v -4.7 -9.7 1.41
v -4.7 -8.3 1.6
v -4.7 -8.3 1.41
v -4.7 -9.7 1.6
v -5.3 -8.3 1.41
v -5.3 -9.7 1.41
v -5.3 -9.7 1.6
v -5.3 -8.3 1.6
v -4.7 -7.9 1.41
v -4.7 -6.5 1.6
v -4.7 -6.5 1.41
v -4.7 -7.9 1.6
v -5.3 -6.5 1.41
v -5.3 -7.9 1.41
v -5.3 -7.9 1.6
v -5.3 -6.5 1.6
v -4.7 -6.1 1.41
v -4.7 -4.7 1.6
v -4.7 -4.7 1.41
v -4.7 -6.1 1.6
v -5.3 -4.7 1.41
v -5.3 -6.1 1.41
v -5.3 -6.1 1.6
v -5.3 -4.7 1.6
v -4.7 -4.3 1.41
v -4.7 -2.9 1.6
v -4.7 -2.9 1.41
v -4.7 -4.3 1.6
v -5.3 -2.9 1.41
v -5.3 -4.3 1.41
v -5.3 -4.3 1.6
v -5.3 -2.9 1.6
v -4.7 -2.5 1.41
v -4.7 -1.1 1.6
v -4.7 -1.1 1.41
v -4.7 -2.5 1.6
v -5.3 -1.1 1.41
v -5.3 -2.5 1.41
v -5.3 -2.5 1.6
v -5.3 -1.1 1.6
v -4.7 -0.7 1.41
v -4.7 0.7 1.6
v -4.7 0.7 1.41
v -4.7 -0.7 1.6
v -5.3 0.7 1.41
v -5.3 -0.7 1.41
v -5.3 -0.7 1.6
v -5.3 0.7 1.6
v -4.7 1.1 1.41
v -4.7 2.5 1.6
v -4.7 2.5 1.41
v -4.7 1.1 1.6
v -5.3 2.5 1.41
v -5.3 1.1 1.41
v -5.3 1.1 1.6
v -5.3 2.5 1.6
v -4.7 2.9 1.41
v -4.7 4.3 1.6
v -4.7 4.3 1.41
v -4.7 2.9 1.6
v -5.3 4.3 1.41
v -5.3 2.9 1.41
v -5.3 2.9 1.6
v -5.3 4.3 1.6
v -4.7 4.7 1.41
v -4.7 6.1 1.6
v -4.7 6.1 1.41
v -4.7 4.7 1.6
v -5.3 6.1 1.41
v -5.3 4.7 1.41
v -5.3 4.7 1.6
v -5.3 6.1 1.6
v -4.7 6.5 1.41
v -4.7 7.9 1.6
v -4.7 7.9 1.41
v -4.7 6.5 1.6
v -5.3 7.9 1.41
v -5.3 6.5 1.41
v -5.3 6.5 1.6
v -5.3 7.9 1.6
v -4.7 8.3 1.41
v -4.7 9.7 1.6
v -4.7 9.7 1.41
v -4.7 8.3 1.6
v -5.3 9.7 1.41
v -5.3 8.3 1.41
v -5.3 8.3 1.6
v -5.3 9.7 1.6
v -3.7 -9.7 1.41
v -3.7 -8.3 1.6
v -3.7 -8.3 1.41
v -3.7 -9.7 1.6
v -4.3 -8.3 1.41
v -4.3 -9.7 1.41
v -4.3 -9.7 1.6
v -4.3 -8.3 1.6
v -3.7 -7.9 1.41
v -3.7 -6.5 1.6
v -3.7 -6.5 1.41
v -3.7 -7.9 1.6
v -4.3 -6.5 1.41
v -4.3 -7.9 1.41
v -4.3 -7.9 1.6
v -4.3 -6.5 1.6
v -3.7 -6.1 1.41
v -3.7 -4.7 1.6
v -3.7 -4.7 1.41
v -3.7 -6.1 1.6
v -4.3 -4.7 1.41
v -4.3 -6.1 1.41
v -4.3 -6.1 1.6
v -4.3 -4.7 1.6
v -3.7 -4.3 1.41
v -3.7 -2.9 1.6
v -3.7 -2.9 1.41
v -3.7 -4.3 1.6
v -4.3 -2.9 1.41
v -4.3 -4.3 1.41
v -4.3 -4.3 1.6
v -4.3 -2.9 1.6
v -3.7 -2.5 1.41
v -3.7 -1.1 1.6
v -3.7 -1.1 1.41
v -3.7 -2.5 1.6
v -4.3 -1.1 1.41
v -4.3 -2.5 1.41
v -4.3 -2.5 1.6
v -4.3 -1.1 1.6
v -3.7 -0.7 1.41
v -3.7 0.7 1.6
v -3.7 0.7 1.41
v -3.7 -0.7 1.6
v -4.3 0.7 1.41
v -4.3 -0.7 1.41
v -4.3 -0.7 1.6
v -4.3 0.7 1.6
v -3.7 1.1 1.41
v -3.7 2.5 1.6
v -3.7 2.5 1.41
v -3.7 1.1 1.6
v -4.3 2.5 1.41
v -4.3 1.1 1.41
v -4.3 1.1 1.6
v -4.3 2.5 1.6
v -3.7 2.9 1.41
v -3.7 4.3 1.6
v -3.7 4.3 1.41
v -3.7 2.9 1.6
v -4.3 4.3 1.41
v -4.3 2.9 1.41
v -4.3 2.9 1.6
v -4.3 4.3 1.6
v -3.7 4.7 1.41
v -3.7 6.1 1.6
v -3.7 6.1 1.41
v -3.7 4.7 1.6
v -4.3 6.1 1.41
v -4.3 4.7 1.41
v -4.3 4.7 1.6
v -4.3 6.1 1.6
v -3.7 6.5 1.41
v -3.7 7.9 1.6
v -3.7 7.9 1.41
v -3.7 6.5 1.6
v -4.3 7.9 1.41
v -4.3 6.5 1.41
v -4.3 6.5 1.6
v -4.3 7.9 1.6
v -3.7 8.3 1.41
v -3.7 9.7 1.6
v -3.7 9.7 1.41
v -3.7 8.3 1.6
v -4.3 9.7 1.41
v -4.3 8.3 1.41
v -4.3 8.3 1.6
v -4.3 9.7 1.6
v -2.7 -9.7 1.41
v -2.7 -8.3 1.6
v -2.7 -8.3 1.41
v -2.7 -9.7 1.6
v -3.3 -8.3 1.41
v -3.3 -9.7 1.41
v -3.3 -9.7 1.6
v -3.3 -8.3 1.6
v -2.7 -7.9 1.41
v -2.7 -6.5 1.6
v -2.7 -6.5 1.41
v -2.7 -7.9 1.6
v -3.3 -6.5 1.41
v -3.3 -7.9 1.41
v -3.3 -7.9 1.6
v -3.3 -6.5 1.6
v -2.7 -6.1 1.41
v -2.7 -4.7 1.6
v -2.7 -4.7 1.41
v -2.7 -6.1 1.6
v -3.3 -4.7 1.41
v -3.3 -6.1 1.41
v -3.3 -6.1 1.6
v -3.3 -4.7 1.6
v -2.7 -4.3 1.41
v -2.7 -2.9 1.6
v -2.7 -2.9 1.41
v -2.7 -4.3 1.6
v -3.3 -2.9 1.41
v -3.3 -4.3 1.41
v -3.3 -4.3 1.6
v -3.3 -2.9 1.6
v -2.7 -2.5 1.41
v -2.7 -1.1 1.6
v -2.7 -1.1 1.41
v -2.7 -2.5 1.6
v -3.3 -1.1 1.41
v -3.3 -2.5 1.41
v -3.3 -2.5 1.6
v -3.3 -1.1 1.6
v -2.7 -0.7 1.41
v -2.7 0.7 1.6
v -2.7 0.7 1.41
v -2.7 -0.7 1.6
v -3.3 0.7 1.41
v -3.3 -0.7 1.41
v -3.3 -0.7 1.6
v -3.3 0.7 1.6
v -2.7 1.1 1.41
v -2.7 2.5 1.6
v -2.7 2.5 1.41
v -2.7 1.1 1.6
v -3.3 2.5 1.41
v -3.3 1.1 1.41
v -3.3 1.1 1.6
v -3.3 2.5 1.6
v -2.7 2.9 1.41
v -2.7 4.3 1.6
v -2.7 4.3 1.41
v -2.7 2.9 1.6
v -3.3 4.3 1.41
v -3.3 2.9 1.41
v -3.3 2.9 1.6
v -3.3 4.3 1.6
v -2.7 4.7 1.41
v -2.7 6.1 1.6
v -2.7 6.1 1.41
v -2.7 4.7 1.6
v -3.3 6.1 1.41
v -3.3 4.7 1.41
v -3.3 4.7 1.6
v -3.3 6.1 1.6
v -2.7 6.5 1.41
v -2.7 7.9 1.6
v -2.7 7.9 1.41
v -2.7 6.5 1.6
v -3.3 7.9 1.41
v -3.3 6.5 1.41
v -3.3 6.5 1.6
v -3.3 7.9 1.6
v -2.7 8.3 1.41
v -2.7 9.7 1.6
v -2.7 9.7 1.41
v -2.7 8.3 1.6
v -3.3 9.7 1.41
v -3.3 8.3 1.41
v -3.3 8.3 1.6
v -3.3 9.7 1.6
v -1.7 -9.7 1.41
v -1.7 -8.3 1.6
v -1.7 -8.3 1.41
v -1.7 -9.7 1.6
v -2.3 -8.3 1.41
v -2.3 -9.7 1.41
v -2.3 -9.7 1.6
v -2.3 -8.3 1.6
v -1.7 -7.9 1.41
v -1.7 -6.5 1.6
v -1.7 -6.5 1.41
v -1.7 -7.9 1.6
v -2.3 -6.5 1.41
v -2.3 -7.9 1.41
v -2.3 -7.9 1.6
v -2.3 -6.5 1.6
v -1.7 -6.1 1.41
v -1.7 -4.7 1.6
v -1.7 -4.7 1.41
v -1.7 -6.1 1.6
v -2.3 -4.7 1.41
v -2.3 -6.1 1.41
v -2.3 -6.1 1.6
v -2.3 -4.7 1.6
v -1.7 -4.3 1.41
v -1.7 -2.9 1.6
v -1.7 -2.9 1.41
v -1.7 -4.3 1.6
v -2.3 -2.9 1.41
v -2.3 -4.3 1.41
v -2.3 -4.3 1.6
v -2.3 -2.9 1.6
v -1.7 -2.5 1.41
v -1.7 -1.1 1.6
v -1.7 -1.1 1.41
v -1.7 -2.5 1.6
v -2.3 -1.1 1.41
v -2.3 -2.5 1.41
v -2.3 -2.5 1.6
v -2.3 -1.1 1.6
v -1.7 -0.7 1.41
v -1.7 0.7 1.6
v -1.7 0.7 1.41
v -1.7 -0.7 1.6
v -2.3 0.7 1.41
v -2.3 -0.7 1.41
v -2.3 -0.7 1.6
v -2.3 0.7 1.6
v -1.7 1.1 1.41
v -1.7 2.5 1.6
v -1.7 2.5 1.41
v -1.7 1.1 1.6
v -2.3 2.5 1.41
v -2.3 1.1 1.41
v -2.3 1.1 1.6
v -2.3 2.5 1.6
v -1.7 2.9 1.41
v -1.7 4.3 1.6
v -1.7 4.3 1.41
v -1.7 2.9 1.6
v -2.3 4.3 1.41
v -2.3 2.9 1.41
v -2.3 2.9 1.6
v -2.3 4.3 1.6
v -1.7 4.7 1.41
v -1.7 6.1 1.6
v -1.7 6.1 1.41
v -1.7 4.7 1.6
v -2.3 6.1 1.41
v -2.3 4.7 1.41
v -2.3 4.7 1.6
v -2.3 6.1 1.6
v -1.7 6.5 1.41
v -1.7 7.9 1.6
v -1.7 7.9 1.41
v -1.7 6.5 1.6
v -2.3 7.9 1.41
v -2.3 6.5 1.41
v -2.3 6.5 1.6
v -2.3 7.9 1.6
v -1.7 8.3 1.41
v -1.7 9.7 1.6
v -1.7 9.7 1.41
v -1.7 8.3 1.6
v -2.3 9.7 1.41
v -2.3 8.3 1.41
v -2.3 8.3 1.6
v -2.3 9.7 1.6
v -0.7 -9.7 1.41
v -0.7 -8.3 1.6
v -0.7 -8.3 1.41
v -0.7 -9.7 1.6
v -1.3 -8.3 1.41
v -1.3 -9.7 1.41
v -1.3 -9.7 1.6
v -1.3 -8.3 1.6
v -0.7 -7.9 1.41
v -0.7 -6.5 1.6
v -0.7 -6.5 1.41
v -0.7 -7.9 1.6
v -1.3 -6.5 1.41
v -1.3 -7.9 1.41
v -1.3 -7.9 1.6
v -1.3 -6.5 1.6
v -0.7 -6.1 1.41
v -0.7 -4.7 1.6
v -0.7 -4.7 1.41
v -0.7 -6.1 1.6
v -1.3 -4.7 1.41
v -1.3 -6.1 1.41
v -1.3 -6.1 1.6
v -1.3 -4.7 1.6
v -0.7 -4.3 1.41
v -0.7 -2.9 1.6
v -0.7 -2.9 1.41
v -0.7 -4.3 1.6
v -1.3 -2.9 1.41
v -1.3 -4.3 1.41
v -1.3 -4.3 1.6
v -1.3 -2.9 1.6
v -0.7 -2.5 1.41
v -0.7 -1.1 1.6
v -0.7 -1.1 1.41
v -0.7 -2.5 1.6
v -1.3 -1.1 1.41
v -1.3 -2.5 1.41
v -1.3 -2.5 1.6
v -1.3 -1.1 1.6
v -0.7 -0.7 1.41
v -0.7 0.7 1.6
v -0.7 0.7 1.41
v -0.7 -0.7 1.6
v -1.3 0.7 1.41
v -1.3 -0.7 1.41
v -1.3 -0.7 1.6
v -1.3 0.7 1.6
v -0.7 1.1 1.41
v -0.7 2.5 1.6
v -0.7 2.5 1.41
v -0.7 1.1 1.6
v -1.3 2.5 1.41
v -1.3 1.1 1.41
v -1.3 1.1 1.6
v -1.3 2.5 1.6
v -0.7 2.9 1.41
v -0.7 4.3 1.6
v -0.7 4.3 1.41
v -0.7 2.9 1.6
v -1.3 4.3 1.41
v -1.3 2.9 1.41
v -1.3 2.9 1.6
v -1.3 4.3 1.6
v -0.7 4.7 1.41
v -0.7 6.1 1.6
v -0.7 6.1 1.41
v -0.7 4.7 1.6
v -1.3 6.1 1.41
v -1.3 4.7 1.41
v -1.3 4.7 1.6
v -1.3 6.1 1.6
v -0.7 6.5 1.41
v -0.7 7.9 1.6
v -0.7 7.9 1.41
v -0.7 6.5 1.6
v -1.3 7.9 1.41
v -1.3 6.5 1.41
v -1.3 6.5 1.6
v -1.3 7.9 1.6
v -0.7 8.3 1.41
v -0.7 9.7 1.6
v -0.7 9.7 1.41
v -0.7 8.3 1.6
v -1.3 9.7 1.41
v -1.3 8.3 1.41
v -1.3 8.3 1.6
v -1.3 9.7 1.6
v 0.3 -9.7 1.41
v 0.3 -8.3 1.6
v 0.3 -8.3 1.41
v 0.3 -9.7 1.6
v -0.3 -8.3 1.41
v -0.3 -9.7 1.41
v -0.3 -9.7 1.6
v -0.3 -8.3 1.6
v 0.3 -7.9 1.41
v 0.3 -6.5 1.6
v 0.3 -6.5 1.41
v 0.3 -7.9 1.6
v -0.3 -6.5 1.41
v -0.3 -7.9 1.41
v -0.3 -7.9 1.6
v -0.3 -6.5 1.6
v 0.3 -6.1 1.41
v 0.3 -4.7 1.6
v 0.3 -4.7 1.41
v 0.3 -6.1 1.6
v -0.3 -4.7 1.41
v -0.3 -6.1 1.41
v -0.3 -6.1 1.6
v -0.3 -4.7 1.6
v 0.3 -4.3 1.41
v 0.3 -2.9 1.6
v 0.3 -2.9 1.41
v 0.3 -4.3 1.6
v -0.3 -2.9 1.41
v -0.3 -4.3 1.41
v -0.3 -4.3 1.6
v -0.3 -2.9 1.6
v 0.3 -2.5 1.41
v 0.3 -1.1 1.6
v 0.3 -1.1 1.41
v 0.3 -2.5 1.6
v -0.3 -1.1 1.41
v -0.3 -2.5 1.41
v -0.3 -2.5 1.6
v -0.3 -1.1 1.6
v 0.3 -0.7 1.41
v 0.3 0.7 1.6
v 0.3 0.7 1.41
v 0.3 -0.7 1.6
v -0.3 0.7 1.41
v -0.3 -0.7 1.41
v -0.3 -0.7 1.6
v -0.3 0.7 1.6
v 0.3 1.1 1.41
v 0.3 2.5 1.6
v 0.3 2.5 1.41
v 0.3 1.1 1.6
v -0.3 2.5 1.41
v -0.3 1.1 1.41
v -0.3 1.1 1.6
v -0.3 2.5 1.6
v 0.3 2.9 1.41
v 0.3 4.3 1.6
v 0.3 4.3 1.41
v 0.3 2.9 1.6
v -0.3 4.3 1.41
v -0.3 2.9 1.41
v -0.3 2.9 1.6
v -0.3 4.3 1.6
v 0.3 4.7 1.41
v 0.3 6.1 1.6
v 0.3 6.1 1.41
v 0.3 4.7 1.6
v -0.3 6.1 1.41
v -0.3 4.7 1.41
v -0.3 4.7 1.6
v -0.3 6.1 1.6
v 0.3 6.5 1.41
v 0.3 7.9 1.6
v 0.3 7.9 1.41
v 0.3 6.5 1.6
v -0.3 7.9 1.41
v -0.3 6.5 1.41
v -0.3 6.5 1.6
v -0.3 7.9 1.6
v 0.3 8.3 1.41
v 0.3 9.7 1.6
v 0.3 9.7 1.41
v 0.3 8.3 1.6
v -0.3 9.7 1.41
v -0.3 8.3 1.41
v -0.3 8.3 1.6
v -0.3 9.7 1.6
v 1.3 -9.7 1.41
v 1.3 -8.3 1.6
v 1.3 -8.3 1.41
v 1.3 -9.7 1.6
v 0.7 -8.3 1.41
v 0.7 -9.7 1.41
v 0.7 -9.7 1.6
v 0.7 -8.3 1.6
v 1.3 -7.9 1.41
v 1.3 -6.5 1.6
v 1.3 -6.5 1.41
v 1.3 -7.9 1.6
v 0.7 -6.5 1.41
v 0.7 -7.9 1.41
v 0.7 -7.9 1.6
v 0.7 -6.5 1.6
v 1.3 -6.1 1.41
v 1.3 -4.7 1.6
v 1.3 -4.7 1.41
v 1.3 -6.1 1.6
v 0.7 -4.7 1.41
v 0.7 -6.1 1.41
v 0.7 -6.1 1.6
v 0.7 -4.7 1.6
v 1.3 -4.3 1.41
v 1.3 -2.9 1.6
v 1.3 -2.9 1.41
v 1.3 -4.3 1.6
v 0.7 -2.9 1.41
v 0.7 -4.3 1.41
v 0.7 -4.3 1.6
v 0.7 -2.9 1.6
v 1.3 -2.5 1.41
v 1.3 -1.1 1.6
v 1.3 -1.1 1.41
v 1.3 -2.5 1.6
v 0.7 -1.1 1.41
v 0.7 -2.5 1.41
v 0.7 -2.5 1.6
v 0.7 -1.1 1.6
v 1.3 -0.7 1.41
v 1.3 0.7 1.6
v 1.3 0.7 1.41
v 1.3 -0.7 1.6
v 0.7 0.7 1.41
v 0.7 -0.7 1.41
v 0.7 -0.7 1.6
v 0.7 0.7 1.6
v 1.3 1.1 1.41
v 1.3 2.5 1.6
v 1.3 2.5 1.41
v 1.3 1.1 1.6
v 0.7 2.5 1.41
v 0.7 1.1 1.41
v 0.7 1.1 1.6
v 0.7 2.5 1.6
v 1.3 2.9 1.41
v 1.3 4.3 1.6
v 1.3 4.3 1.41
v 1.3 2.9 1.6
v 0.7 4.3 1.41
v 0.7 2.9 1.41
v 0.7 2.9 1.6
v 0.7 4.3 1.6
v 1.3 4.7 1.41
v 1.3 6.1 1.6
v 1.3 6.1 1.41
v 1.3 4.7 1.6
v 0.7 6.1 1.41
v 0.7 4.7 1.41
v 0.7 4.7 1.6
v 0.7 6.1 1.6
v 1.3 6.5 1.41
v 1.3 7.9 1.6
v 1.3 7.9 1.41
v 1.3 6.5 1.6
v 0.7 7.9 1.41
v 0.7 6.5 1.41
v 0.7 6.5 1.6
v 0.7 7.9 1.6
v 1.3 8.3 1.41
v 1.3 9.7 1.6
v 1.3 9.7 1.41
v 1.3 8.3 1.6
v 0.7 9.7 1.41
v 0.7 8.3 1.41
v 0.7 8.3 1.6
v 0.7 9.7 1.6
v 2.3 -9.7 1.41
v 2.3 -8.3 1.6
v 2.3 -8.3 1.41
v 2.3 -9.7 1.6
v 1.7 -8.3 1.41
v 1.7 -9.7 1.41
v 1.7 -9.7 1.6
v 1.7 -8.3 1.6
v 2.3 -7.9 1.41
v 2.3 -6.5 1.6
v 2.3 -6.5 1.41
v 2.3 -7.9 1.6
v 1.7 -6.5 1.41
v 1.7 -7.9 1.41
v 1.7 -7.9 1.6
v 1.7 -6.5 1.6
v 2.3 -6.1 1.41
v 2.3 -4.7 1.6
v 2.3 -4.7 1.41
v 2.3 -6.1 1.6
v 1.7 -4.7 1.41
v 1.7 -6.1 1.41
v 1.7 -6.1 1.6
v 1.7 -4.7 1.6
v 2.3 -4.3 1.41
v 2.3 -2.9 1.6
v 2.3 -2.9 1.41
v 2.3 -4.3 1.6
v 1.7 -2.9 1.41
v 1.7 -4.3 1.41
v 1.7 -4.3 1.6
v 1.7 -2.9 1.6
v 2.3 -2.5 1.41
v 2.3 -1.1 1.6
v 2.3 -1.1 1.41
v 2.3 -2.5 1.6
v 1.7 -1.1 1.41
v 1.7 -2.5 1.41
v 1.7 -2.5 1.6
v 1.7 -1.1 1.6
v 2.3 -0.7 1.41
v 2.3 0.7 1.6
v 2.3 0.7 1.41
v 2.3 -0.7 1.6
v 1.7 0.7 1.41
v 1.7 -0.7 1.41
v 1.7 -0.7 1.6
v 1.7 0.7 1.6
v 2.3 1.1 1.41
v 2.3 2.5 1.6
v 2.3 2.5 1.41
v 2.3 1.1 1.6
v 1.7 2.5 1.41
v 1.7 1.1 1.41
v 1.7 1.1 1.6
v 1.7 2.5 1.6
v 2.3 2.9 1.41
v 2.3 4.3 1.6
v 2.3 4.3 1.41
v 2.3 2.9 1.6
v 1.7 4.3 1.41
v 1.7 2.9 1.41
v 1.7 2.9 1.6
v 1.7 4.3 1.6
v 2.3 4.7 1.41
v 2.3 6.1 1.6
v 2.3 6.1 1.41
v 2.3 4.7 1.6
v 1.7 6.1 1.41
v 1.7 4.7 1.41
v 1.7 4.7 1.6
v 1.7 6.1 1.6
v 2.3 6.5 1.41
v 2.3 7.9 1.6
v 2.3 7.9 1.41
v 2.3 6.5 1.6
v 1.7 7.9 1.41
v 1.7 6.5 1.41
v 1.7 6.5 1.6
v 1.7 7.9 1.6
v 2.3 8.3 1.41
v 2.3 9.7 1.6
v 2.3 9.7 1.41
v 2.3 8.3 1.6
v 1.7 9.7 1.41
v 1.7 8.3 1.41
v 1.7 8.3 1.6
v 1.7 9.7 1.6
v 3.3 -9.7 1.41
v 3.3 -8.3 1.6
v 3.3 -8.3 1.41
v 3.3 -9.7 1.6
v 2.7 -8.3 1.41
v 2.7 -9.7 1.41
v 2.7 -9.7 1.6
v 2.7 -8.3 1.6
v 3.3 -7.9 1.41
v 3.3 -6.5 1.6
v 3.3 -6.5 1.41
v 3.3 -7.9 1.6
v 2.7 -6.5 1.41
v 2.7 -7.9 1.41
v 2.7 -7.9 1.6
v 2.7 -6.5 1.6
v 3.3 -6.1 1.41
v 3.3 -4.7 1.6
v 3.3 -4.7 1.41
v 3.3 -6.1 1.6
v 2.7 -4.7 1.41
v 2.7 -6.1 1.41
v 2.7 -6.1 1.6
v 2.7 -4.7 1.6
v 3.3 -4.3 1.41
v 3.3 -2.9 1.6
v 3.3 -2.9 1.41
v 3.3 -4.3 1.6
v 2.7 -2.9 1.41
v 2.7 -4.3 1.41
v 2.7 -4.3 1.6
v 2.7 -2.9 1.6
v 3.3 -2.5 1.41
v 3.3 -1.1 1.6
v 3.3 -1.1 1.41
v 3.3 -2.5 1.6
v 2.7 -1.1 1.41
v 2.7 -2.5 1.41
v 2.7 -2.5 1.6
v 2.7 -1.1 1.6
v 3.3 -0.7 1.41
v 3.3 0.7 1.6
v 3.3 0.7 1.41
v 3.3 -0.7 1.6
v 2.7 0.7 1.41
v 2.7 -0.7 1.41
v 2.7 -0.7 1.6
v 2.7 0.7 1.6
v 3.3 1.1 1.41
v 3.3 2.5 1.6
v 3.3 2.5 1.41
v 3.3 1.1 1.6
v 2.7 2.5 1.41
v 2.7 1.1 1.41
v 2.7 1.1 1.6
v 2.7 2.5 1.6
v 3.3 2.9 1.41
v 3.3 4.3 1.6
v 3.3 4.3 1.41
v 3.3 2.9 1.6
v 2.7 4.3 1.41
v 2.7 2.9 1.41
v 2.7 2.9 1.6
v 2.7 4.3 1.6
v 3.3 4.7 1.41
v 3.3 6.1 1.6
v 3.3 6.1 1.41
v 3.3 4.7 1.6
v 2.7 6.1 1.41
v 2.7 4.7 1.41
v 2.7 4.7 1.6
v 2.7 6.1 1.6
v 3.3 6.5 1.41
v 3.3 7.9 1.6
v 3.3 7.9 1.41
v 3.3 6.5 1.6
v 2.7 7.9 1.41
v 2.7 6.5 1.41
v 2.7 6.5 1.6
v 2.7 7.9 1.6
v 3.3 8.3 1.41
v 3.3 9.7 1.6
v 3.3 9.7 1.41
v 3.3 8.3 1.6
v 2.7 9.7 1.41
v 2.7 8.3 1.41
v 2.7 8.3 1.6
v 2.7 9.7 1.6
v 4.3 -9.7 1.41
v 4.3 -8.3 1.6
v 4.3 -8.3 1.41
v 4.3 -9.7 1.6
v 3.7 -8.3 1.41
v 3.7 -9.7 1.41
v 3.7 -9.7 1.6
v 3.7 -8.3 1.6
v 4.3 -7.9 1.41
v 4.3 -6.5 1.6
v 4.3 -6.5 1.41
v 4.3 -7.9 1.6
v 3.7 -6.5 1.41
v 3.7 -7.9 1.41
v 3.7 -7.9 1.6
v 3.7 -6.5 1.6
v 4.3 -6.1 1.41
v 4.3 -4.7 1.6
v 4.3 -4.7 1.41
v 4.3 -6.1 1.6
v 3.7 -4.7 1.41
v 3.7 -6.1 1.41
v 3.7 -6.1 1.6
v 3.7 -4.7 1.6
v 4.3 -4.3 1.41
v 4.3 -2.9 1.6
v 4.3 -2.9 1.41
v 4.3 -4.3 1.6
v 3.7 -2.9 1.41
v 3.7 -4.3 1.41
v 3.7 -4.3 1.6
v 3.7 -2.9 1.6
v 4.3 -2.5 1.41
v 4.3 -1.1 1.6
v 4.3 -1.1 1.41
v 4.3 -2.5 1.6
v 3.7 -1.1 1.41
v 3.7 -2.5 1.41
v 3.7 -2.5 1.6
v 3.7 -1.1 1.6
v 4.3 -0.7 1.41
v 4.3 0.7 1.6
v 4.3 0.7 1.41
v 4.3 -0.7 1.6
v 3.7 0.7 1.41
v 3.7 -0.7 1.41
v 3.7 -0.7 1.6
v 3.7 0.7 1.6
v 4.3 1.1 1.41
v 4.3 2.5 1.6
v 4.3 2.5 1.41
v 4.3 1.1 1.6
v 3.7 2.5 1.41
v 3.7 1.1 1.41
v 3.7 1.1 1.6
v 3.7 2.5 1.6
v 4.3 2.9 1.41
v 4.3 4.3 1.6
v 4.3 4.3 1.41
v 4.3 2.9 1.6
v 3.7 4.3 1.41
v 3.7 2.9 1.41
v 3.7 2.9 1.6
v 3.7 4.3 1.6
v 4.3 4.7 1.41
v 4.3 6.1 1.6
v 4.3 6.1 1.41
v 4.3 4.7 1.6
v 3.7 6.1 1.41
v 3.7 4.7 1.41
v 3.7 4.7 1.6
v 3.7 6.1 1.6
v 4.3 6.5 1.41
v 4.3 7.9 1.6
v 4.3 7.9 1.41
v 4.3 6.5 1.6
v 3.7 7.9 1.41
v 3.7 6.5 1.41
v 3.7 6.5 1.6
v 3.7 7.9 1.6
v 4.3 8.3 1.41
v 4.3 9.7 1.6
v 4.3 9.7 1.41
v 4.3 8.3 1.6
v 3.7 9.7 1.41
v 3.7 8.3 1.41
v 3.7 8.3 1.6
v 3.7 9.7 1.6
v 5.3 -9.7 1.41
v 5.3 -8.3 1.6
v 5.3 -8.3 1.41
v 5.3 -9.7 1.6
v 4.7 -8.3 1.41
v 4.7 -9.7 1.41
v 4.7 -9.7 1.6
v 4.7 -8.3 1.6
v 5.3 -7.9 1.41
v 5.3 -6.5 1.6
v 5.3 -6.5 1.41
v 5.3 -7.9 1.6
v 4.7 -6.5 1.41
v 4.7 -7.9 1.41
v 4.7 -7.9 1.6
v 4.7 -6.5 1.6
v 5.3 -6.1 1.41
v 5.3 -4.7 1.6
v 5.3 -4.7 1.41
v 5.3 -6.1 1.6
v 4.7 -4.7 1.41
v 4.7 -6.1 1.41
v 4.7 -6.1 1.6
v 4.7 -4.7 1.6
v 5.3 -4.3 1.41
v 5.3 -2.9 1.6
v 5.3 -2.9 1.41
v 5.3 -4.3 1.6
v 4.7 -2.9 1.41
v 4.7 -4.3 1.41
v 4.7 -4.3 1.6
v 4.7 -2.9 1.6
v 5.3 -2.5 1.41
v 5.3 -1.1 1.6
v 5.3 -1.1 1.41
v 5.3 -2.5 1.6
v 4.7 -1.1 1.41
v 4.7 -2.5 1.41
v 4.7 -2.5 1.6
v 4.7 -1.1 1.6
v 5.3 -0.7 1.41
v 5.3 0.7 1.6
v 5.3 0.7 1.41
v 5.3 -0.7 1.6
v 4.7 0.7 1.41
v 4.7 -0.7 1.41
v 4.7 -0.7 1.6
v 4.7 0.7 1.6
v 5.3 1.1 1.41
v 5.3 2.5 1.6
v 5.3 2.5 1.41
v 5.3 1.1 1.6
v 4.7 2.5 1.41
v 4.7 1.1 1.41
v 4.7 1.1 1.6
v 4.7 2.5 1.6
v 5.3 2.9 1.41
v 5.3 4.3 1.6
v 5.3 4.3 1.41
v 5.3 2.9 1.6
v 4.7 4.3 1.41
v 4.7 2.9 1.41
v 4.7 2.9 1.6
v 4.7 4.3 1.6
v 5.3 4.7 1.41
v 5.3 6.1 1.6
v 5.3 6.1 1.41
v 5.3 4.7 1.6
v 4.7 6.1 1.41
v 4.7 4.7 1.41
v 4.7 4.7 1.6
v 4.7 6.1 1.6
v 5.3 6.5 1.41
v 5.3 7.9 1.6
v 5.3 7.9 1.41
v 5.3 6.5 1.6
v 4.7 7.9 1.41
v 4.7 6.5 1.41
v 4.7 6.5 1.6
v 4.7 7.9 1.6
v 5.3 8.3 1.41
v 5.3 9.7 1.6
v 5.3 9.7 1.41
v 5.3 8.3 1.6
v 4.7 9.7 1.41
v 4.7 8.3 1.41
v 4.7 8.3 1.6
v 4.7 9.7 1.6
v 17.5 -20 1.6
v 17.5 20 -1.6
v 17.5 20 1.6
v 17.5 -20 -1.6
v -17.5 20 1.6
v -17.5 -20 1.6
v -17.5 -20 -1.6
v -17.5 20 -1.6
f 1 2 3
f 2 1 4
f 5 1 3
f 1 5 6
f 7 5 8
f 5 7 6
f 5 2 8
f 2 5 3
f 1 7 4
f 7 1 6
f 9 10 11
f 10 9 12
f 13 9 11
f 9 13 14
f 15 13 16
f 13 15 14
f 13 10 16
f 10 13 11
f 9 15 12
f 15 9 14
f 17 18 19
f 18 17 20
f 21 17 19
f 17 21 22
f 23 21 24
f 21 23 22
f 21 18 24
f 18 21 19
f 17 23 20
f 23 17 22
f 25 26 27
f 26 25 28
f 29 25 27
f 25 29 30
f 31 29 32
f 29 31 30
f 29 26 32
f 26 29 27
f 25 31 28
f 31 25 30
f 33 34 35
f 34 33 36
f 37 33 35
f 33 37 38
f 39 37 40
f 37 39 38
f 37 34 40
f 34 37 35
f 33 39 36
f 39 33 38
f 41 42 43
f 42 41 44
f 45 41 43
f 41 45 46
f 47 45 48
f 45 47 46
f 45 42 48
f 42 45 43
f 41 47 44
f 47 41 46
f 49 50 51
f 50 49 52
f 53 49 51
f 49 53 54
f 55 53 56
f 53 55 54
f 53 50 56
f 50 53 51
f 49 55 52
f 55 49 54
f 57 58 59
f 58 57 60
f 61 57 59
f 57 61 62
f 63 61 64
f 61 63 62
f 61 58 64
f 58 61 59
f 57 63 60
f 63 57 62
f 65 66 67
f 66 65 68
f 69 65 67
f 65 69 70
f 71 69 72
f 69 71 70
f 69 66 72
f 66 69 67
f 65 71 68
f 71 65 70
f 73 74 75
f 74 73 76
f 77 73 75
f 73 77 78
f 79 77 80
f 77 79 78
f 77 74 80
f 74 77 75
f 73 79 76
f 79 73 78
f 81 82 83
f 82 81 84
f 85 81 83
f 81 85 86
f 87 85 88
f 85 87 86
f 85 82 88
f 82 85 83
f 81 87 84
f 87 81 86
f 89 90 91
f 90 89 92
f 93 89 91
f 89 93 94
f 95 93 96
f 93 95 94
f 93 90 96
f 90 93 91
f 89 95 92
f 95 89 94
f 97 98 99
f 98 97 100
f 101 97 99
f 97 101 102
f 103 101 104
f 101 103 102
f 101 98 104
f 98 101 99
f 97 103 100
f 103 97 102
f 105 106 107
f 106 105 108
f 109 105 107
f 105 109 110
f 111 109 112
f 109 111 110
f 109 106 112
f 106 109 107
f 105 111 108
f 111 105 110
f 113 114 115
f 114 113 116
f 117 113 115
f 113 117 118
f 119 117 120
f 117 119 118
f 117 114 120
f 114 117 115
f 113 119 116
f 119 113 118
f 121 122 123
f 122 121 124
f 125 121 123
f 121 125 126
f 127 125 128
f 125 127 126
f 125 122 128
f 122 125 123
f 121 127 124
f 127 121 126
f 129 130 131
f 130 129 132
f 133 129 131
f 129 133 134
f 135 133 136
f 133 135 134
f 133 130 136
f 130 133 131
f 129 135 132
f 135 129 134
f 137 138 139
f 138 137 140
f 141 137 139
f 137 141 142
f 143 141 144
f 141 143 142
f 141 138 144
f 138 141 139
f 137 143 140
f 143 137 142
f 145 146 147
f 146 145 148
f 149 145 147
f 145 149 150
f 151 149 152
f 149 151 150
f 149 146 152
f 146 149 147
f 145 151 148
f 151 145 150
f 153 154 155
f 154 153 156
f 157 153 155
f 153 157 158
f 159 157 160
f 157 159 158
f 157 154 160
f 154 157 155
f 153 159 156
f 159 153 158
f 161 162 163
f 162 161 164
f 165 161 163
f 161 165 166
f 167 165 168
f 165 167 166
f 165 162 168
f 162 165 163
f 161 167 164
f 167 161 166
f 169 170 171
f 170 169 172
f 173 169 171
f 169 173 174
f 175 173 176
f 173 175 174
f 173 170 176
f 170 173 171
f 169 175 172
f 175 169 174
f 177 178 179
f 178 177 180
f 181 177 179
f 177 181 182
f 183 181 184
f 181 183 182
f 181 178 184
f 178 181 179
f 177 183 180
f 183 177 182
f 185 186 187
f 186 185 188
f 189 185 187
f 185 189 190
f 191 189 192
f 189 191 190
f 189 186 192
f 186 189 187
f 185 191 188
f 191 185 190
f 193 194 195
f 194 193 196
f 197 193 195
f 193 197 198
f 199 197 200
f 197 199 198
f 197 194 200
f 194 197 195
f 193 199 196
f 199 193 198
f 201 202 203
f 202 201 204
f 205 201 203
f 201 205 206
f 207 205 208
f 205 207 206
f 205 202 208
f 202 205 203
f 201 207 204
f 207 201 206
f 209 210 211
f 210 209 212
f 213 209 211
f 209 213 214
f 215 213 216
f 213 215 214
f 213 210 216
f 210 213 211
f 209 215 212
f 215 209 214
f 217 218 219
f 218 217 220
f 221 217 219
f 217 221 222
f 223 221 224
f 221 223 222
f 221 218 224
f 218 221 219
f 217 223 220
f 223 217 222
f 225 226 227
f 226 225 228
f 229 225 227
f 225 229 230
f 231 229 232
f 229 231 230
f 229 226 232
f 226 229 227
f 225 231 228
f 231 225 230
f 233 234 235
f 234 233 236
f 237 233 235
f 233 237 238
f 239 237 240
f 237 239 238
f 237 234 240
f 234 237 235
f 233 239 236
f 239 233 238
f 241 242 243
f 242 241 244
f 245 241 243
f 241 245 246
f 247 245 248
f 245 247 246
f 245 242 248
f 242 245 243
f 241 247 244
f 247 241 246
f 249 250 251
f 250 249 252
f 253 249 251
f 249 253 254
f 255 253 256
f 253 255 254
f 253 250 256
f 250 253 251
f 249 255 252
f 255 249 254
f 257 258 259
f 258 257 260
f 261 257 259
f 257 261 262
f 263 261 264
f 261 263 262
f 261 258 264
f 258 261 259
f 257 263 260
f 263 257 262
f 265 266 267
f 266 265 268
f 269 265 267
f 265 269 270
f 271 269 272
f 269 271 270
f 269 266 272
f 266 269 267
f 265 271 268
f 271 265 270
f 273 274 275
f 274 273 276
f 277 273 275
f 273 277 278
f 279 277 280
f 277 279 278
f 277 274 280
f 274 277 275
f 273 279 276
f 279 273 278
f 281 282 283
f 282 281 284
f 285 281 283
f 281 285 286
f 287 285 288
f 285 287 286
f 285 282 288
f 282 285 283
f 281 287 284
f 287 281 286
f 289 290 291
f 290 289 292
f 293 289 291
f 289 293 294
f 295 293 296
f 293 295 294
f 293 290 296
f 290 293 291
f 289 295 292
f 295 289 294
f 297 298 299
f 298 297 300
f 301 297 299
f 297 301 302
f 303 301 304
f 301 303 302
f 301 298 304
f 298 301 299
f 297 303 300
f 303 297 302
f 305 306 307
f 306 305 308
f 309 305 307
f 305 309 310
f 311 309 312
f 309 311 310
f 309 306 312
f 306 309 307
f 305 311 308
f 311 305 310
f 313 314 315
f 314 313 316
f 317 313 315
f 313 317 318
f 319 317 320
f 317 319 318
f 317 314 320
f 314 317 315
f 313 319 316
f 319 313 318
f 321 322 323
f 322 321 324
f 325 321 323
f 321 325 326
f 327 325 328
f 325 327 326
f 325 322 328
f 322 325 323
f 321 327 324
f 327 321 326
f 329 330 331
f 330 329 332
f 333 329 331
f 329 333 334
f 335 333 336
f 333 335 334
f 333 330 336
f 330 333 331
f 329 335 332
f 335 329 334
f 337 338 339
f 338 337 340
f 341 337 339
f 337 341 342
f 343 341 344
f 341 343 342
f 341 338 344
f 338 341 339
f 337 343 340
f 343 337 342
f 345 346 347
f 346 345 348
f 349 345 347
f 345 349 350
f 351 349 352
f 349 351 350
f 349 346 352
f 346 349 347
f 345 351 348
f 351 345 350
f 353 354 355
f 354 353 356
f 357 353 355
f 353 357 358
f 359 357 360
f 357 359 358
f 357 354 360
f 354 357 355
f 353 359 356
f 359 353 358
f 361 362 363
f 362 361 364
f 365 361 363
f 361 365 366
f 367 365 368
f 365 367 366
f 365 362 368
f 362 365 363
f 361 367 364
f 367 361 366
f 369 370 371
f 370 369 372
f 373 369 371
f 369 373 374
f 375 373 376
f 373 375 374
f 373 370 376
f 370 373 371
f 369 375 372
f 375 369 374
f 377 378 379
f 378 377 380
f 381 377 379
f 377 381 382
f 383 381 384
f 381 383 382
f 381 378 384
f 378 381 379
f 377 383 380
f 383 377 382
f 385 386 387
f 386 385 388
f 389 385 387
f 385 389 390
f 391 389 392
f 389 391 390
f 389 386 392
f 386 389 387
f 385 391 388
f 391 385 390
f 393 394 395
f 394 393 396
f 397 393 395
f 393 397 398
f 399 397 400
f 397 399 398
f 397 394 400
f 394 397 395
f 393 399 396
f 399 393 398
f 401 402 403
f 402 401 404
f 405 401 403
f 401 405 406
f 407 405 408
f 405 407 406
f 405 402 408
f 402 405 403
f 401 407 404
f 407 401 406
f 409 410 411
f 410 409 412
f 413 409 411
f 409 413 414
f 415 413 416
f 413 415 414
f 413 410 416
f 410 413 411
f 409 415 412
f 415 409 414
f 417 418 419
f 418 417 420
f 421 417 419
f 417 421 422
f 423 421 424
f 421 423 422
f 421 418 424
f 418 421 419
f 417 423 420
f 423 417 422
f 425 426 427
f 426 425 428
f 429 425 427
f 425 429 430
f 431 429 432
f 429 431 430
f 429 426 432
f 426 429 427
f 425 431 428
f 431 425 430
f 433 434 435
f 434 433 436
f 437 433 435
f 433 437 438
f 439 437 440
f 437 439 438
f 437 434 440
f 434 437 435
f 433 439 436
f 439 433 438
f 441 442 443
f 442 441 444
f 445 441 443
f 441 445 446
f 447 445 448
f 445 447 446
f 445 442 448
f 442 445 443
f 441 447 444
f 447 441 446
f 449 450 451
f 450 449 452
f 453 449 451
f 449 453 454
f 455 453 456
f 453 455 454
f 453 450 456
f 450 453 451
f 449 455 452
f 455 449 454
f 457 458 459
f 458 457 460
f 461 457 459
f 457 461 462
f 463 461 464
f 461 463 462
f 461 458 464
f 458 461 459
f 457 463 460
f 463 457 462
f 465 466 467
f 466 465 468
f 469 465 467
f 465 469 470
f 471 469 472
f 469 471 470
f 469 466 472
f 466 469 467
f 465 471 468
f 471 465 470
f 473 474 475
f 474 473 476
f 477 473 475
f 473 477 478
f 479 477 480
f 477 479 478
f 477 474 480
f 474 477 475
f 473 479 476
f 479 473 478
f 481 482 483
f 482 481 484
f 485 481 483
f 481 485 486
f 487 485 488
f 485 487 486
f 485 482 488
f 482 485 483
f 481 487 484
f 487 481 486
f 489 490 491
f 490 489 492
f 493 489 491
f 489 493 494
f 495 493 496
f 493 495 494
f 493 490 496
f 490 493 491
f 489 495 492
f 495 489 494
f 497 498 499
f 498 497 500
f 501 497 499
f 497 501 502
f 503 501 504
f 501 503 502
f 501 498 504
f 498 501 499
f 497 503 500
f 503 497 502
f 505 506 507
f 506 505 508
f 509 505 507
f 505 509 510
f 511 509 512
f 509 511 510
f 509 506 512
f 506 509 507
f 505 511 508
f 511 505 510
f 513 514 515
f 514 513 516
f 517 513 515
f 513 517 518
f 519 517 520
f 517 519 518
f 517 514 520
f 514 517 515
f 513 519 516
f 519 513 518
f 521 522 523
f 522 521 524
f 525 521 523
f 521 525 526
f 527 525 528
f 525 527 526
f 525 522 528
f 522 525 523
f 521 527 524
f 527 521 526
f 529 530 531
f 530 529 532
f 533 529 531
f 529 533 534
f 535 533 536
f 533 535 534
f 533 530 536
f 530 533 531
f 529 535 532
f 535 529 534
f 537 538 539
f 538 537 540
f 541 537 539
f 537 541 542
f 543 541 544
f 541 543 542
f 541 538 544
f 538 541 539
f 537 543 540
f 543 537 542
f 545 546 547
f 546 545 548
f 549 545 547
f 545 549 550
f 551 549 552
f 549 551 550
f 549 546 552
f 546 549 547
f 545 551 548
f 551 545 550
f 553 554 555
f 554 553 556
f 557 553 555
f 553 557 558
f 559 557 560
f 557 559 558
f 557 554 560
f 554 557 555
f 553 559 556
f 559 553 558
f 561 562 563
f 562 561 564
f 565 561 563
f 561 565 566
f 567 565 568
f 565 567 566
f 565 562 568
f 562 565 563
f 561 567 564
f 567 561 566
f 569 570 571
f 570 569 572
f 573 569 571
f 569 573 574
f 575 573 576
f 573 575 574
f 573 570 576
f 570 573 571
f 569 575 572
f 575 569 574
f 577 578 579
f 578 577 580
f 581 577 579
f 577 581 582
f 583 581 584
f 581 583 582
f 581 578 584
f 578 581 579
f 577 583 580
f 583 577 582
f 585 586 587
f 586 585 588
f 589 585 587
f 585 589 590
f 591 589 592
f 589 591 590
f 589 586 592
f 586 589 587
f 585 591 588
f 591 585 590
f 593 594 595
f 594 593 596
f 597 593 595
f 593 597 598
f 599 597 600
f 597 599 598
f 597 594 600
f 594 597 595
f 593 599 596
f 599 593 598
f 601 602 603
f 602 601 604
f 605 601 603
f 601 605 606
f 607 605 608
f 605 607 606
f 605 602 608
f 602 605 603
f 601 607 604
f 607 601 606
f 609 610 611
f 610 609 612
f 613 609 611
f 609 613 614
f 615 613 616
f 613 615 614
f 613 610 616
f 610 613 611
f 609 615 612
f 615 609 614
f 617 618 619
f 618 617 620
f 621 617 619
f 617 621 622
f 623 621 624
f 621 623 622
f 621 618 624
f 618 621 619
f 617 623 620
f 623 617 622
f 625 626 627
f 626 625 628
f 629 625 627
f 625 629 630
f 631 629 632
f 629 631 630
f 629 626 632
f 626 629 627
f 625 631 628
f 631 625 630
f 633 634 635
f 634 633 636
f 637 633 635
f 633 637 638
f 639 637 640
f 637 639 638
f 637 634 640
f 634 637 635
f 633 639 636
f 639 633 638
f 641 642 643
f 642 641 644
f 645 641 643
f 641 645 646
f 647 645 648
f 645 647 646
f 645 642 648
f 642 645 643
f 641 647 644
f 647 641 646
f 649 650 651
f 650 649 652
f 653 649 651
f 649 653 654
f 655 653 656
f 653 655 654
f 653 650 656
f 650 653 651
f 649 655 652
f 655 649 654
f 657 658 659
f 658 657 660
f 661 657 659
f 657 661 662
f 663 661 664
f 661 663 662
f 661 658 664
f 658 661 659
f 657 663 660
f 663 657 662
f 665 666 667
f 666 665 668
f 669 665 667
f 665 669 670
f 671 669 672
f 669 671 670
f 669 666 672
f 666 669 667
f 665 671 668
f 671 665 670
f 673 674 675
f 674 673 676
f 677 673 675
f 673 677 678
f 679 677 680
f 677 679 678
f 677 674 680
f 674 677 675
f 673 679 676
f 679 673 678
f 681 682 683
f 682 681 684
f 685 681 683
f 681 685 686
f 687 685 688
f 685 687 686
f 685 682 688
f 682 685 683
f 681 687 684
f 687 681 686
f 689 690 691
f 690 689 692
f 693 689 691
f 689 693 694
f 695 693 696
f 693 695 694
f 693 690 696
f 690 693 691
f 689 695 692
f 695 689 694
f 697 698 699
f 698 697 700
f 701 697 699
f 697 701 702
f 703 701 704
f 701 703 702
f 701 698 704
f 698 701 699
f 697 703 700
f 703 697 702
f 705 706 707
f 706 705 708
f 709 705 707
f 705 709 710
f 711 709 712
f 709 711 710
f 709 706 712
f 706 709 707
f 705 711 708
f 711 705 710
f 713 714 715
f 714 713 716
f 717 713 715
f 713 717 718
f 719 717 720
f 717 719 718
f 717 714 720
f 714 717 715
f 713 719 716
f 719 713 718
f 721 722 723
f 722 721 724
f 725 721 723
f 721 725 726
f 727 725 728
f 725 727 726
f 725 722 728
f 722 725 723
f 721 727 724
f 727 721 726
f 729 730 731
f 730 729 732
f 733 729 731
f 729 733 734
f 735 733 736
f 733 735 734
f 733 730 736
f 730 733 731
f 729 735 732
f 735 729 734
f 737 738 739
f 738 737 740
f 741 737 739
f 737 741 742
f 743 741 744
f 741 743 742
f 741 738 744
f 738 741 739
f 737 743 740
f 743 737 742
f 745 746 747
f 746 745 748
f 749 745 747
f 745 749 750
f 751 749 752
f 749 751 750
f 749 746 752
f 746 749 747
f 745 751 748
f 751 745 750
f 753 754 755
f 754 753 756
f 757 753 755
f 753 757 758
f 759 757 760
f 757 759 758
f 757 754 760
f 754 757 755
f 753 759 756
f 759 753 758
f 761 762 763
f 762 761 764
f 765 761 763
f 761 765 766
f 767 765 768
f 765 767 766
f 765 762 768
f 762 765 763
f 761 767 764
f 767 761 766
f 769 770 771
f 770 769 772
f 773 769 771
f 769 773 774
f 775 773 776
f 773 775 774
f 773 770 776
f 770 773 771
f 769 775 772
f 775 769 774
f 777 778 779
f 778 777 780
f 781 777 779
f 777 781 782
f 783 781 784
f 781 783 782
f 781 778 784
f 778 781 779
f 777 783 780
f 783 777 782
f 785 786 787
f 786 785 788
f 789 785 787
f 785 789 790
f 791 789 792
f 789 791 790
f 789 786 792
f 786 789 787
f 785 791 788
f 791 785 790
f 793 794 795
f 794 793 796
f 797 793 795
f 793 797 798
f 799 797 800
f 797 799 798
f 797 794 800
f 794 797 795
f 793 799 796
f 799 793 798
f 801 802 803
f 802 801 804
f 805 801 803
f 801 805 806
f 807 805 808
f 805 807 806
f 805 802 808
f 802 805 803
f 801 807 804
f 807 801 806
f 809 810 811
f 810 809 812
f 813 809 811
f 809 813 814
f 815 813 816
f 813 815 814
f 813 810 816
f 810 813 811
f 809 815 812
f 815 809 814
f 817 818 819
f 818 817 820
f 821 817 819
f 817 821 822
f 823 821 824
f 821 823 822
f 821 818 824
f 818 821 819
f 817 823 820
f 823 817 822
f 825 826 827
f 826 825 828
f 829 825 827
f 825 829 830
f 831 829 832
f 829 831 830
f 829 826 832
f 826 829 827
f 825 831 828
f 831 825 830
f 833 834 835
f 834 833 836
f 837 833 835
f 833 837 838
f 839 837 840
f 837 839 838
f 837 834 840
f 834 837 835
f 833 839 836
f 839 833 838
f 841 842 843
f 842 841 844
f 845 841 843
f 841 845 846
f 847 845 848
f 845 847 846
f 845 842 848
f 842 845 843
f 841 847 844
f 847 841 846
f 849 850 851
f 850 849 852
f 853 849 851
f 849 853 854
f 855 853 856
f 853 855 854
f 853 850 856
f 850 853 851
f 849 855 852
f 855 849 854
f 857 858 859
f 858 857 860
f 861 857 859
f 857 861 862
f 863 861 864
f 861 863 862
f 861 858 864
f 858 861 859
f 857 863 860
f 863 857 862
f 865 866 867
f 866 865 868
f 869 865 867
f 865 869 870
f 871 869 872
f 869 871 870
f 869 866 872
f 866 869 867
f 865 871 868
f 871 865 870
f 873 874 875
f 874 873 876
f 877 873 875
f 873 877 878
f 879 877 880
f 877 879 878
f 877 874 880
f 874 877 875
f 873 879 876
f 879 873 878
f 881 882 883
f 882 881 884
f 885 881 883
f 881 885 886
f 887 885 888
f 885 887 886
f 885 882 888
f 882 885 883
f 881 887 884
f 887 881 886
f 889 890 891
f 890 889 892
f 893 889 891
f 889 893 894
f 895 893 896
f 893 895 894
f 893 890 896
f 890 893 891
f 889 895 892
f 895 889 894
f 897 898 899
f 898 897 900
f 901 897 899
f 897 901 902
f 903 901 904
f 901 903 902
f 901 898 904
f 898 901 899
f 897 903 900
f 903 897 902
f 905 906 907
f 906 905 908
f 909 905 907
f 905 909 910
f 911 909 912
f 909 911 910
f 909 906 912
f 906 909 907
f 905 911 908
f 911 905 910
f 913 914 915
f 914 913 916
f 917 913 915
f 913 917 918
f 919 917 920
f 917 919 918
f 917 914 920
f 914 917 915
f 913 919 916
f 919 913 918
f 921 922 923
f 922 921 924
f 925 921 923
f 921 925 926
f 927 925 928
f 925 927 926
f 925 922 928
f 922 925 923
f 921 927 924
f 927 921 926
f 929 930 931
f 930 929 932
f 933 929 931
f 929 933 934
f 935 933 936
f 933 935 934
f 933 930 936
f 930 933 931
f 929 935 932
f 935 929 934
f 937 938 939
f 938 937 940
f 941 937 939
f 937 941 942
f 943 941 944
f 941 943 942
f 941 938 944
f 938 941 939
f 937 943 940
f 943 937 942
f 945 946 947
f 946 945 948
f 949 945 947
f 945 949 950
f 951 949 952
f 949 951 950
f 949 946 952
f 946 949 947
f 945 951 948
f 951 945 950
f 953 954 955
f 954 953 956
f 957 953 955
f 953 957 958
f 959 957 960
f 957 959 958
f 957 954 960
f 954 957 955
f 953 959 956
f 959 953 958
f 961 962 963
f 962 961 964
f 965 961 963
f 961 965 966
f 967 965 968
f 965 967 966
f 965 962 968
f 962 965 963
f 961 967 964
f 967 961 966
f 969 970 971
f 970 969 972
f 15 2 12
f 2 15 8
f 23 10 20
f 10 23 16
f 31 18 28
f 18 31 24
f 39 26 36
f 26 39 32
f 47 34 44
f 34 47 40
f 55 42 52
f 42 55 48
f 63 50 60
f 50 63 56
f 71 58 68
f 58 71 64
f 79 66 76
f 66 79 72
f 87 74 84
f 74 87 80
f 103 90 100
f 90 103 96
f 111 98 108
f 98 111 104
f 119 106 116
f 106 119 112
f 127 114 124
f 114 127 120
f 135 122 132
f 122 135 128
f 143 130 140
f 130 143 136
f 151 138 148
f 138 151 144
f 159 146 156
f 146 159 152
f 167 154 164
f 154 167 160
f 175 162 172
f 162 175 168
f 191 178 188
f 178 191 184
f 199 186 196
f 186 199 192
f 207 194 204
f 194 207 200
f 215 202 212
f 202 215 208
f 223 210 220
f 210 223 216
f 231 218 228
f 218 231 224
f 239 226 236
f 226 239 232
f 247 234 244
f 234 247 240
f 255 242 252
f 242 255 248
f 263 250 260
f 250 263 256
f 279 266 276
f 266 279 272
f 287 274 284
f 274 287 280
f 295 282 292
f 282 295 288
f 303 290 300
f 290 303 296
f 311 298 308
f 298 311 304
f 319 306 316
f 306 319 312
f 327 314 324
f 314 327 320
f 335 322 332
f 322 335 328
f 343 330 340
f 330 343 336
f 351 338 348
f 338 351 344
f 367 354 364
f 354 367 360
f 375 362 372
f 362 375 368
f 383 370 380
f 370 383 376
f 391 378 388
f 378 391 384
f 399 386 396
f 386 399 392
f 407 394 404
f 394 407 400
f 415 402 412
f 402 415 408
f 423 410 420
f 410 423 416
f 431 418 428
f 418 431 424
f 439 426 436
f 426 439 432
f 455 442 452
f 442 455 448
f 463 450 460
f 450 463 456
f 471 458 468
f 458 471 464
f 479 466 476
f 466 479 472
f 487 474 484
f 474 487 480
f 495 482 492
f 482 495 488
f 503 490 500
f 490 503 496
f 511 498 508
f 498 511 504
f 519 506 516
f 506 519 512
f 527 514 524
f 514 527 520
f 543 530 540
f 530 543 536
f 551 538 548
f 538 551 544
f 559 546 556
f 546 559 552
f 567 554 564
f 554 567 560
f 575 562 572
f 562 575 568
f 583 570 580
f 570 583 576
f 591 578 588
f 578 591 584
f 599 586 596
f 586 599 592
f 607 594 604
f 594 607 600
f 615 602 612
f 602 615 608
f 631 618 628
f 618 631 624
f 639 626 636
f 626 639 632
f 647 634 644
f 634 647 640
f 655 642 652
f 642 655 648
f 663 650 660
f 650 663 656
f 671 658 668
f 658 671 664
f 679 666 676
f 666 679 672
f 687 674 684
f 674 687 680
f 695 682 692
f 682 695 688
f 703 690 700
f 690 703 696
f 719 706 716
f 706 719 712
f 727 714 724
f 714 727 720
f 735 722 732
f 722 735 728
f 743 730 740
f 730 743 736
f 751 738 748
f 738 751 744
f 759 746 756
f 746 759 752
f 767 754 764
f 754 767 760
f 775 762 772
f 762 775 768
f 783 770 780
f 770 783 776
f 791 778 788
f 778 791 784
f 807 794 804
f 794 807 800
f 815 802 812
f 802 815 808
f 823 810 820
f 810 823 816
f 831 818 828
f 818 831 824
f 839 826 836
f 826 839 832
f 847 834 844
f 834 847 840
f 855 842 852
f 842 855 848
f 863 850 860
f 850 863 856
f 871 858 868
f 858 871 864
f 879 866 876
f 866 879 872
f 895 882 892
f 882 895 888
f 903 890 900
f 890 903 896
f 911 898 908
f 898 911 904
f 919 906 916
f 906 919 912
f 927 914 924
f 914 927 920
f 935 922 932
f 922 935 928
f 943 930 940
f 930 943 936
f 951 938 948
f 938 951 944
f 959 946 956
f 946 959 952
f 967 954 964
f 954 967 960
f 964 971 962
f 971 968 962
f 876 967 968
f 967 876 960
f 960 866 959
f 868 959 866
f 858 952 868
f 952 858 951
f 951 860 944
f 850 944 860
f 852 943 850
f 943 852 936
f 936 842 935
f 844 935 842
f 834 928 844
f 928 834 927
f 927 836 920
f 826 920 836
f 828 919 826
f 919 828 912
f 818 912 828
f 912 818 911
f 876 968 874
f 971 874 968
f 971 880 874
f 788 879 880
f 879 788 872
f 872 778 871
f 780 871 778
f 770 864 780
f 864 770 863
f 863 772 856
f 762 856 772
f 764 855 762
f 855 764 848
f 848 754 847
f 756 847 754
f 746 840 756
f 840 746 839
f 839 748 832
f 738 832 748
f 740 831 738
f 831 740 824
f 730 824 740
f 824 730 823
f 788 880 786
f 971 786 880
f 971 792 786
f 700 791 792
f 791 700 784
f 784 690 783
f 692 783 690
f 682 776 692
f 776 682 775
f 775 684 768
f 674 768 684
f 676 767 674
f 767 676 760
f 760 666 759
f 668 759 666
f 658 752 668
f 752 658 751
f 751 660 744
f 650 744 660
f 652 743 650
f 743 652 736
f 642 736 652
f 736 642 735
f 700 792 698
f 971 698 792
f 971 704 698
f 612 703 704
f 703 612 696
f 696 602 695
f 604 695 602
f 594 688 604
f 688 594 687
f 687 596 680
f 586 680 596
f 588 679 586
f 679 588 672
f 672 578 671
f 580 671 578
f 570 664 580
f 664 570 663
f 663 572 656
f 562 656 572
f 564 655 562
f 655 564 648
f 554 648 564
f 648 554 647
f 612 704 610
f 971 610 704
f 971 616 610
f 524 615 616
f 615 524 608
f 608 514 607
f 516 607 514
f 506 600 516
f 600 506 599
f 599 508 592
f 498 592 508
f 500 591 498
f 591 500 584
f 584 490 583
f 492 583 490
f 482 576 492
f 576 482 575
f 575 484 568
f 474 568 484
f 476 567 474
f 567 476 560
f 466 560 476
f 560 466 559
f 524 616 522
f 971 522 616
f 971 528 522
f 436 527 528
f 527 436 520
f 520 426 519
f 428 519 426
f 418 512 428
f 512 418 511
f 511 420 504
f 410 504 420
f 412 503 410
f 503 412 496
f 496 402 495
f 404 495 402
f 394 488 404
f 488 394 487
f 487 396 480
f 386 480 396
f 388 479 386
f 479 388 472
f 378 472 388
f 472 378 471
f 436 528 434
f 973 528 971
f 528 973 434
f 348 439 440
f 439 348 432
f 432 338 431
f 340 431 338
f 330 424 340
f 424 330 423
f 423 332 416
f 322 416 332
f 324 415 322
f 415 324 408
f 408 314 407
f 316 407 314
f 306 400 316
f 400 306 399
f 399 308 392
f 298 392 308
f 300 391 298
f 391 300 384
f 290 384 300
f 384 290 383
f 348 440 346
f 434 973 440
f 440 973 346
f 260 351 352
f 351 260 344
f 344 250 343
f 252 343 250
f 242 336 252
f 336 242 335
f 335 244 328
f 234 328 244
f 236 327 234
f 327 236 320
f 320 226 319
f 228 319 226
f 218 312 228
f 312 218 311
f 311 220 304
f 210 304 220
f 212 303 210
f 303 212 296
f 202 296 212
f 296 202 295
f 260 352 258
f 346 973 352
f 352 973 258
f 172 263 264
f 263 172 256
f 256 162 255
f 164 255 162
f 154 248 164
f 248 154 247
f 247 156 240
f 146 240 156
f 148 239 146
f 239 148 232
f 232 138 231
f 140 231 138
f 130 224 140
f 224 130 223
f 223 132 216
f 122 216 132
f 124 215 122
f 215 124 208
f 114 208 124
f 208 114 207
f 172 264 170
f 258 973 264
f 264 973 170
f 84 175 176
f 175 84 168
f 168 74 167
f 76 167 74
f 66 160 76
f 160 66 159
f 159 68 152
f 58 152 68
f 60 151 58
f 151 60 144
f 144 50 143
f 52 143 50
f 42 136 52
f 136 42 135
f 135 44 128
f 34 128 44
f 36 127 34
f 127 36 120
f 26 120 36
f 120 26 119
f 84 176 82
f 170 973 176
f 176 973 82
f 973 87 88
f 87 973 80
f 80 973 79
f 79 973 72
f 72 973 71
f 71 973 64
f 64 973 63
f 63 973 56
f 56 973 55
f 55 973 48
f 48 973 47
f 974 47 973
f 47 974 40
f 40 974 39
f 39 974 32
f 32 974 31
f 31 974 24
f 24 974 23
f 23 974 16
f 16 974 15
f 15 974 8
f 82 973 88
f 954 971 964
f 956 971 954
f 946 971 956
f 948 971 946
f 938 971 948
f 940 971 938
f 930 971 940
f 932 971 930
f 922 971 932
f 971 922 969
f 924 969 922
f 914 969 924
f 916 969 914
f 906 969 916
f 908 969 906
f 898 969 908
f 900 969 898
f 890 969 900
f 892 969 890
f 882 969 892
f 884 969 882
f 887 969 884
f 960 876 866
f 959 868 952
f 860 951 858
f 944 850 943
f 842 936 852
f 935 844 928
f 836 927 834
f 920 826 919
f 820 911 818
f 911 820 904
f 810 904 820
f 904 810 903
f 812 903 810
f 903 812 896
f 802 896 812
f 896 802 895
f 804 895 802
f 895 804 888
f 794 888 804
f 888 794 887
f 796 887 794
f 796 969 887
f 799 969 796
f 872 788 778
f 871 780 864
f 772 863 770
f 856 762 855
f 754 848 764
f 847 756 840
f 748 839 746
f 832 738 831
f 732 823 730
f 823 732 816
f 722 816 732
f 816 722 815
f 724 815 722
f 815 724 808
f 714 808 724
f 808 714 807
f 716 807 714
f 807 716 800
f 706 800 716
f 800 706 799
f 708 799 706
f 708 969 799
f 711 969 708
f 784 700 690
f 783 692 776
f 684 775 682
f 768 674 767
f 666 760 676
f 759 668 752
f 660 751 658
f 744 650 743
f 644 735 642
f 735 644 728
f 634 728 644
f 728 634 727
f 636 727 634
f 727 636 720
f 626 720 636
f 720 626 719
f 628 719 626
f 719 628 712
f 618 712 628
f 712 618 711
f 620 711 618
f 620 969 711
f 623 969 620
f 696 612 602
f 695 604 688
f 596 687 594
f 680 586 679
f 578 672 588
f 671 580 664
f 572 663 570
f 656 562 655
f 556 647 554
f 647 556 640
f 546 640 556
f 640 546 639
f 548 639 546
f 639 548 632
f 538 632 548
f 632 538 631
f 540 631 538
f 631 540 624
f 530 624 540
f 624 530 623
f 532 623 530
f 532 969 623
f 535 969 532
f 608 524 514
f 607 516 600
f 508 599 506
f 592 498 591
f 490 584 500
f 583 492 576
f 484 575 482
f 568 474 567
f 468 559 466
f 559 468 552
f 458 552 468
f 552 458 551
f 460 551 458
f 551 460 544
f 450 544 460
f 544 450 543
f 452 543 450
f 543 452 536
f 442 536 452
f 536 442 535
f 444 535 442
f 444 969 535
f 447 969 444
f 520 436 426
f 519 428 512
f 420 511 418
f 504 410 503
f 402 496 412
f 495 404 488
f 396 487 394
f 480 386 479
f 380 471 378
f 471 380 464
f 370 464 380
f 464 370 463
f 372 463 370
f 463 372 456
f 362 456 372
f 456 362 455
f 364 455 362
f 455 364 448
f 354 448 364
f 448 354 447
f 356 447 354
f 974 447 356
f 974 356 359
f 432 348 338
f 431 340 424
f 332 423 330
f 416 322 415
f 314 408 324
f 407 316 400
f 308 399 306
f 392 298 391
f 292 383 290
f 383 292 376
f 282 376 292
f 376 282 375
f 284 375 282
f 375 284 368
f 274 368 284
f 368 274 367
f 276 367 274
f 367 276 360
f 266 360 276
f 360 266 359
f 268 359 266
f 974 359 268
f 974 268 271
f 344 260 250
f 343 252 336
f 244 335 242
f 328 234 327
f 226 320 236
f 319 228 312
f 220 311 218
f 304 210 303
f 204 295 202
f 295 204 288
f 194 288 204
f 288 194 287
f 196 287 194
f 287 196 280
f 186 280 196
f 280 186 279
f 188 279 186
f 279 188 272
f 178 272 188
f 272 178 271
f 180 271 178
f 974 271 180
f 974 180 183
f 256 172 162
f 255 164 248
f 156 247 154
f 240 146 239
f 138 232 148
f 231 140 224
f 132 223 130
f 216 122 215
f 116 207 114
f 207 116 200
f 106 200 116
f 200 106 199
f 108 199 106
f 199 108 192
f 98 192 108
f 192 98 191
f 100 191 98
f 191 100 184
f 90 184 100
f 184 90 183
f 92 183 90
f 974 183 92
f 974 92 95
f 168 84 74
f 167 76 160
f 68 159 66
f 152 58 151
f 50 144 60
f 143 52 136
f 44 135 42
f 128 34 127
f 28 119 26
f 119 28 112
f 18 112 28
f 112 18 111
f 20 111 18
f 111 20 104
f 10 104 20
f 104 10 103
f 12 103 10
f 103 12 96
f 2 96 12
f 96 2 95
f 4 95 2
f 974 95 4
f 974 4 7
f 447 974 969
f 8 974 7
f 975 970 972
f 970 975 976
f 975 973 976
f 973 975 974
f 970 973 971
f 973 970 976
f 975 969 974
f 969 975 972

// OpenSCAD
//oocyte chamber
//updated by AM Chagas 20210506 -> larger grid
//designed by AM Chagas 20181001 CC BY 4.0 license
//inspired on the design from J Menzies.

wellx = 0.6;//0.3
welly = 1.4;//0.7
wellz = 0.2;

interwell = 0.4;

nwellsx = 10;
nwellsy = 10;

platey = wellx*nwellsx*5+10;
platex = welly*nwellsy*1.5+14;
platez = 3.2        ;


landmarks = 0;


tol = 0.1;
$fn=20;
/*
module grid(){
    for (x = [0:nwellsx-1]){
        for (y = [0:nwellsy-1]){
            translate([x*(wellx+interwell),y*(welly+interwell),0]){
                cube([wellx,welly,wellz],center=true);
                }//end translate
            }//end for y
    }//end for x
}//end module
*/
module grid(wellx=wellx,welly=welly,holeThrough=0){
    for (x = [-nwellsx/2:nwellsx/2]){
        for (y = [-nwellsy/2:nwellsy/2]){
            translate([x*(wellx+interwell),y*(welly+interwell),platez/2-wellz/2+0.01]){
                if(holeThrough==1){
                    cube([wellx,welly,wellz+10],center=true);
                    }//endif
                else{
                 cube([wellx,welly,wellz],center=true);
                    }
                }//end translate
            }//end for y
    }//end for x
}//end module




difference(){

//translate([-platex/2+5,-platey/2+5,-platez+wellz-0.001]){
cube([platex,platey,platez],center=true);

//}

/*
translate([0,0,0.2]){
cube([wellx*nwellsx*2+8,welly*nwellsy*2,platez],center=true);
}

*/
//    translate([0,0,-0.5]){
//        minkowski(){
//            sphere(d=0.5);
//cube([18,14,0.5],center=true);    
//        }
//}//end translate

grid(holeThrough=0);

}//end difference
if(landmarks==1){

for (x=[-platex/2,platex/2]){
translate([x,0,0.4]){
cube([2,2,4],center=true);
}//end translate
}//end for

for(y=[-platey/2,platey/2]){
translate([0,y,0.4]){
cube([2,2,4],center=true);
}//end translate
}//end for
}

/*
translate([-9.5,0,0.05]){
cube([4,15,platez],center=true);
}

translate([9.5,0,0.05]){
cube([4,15,platez],center=true);
}
*/
